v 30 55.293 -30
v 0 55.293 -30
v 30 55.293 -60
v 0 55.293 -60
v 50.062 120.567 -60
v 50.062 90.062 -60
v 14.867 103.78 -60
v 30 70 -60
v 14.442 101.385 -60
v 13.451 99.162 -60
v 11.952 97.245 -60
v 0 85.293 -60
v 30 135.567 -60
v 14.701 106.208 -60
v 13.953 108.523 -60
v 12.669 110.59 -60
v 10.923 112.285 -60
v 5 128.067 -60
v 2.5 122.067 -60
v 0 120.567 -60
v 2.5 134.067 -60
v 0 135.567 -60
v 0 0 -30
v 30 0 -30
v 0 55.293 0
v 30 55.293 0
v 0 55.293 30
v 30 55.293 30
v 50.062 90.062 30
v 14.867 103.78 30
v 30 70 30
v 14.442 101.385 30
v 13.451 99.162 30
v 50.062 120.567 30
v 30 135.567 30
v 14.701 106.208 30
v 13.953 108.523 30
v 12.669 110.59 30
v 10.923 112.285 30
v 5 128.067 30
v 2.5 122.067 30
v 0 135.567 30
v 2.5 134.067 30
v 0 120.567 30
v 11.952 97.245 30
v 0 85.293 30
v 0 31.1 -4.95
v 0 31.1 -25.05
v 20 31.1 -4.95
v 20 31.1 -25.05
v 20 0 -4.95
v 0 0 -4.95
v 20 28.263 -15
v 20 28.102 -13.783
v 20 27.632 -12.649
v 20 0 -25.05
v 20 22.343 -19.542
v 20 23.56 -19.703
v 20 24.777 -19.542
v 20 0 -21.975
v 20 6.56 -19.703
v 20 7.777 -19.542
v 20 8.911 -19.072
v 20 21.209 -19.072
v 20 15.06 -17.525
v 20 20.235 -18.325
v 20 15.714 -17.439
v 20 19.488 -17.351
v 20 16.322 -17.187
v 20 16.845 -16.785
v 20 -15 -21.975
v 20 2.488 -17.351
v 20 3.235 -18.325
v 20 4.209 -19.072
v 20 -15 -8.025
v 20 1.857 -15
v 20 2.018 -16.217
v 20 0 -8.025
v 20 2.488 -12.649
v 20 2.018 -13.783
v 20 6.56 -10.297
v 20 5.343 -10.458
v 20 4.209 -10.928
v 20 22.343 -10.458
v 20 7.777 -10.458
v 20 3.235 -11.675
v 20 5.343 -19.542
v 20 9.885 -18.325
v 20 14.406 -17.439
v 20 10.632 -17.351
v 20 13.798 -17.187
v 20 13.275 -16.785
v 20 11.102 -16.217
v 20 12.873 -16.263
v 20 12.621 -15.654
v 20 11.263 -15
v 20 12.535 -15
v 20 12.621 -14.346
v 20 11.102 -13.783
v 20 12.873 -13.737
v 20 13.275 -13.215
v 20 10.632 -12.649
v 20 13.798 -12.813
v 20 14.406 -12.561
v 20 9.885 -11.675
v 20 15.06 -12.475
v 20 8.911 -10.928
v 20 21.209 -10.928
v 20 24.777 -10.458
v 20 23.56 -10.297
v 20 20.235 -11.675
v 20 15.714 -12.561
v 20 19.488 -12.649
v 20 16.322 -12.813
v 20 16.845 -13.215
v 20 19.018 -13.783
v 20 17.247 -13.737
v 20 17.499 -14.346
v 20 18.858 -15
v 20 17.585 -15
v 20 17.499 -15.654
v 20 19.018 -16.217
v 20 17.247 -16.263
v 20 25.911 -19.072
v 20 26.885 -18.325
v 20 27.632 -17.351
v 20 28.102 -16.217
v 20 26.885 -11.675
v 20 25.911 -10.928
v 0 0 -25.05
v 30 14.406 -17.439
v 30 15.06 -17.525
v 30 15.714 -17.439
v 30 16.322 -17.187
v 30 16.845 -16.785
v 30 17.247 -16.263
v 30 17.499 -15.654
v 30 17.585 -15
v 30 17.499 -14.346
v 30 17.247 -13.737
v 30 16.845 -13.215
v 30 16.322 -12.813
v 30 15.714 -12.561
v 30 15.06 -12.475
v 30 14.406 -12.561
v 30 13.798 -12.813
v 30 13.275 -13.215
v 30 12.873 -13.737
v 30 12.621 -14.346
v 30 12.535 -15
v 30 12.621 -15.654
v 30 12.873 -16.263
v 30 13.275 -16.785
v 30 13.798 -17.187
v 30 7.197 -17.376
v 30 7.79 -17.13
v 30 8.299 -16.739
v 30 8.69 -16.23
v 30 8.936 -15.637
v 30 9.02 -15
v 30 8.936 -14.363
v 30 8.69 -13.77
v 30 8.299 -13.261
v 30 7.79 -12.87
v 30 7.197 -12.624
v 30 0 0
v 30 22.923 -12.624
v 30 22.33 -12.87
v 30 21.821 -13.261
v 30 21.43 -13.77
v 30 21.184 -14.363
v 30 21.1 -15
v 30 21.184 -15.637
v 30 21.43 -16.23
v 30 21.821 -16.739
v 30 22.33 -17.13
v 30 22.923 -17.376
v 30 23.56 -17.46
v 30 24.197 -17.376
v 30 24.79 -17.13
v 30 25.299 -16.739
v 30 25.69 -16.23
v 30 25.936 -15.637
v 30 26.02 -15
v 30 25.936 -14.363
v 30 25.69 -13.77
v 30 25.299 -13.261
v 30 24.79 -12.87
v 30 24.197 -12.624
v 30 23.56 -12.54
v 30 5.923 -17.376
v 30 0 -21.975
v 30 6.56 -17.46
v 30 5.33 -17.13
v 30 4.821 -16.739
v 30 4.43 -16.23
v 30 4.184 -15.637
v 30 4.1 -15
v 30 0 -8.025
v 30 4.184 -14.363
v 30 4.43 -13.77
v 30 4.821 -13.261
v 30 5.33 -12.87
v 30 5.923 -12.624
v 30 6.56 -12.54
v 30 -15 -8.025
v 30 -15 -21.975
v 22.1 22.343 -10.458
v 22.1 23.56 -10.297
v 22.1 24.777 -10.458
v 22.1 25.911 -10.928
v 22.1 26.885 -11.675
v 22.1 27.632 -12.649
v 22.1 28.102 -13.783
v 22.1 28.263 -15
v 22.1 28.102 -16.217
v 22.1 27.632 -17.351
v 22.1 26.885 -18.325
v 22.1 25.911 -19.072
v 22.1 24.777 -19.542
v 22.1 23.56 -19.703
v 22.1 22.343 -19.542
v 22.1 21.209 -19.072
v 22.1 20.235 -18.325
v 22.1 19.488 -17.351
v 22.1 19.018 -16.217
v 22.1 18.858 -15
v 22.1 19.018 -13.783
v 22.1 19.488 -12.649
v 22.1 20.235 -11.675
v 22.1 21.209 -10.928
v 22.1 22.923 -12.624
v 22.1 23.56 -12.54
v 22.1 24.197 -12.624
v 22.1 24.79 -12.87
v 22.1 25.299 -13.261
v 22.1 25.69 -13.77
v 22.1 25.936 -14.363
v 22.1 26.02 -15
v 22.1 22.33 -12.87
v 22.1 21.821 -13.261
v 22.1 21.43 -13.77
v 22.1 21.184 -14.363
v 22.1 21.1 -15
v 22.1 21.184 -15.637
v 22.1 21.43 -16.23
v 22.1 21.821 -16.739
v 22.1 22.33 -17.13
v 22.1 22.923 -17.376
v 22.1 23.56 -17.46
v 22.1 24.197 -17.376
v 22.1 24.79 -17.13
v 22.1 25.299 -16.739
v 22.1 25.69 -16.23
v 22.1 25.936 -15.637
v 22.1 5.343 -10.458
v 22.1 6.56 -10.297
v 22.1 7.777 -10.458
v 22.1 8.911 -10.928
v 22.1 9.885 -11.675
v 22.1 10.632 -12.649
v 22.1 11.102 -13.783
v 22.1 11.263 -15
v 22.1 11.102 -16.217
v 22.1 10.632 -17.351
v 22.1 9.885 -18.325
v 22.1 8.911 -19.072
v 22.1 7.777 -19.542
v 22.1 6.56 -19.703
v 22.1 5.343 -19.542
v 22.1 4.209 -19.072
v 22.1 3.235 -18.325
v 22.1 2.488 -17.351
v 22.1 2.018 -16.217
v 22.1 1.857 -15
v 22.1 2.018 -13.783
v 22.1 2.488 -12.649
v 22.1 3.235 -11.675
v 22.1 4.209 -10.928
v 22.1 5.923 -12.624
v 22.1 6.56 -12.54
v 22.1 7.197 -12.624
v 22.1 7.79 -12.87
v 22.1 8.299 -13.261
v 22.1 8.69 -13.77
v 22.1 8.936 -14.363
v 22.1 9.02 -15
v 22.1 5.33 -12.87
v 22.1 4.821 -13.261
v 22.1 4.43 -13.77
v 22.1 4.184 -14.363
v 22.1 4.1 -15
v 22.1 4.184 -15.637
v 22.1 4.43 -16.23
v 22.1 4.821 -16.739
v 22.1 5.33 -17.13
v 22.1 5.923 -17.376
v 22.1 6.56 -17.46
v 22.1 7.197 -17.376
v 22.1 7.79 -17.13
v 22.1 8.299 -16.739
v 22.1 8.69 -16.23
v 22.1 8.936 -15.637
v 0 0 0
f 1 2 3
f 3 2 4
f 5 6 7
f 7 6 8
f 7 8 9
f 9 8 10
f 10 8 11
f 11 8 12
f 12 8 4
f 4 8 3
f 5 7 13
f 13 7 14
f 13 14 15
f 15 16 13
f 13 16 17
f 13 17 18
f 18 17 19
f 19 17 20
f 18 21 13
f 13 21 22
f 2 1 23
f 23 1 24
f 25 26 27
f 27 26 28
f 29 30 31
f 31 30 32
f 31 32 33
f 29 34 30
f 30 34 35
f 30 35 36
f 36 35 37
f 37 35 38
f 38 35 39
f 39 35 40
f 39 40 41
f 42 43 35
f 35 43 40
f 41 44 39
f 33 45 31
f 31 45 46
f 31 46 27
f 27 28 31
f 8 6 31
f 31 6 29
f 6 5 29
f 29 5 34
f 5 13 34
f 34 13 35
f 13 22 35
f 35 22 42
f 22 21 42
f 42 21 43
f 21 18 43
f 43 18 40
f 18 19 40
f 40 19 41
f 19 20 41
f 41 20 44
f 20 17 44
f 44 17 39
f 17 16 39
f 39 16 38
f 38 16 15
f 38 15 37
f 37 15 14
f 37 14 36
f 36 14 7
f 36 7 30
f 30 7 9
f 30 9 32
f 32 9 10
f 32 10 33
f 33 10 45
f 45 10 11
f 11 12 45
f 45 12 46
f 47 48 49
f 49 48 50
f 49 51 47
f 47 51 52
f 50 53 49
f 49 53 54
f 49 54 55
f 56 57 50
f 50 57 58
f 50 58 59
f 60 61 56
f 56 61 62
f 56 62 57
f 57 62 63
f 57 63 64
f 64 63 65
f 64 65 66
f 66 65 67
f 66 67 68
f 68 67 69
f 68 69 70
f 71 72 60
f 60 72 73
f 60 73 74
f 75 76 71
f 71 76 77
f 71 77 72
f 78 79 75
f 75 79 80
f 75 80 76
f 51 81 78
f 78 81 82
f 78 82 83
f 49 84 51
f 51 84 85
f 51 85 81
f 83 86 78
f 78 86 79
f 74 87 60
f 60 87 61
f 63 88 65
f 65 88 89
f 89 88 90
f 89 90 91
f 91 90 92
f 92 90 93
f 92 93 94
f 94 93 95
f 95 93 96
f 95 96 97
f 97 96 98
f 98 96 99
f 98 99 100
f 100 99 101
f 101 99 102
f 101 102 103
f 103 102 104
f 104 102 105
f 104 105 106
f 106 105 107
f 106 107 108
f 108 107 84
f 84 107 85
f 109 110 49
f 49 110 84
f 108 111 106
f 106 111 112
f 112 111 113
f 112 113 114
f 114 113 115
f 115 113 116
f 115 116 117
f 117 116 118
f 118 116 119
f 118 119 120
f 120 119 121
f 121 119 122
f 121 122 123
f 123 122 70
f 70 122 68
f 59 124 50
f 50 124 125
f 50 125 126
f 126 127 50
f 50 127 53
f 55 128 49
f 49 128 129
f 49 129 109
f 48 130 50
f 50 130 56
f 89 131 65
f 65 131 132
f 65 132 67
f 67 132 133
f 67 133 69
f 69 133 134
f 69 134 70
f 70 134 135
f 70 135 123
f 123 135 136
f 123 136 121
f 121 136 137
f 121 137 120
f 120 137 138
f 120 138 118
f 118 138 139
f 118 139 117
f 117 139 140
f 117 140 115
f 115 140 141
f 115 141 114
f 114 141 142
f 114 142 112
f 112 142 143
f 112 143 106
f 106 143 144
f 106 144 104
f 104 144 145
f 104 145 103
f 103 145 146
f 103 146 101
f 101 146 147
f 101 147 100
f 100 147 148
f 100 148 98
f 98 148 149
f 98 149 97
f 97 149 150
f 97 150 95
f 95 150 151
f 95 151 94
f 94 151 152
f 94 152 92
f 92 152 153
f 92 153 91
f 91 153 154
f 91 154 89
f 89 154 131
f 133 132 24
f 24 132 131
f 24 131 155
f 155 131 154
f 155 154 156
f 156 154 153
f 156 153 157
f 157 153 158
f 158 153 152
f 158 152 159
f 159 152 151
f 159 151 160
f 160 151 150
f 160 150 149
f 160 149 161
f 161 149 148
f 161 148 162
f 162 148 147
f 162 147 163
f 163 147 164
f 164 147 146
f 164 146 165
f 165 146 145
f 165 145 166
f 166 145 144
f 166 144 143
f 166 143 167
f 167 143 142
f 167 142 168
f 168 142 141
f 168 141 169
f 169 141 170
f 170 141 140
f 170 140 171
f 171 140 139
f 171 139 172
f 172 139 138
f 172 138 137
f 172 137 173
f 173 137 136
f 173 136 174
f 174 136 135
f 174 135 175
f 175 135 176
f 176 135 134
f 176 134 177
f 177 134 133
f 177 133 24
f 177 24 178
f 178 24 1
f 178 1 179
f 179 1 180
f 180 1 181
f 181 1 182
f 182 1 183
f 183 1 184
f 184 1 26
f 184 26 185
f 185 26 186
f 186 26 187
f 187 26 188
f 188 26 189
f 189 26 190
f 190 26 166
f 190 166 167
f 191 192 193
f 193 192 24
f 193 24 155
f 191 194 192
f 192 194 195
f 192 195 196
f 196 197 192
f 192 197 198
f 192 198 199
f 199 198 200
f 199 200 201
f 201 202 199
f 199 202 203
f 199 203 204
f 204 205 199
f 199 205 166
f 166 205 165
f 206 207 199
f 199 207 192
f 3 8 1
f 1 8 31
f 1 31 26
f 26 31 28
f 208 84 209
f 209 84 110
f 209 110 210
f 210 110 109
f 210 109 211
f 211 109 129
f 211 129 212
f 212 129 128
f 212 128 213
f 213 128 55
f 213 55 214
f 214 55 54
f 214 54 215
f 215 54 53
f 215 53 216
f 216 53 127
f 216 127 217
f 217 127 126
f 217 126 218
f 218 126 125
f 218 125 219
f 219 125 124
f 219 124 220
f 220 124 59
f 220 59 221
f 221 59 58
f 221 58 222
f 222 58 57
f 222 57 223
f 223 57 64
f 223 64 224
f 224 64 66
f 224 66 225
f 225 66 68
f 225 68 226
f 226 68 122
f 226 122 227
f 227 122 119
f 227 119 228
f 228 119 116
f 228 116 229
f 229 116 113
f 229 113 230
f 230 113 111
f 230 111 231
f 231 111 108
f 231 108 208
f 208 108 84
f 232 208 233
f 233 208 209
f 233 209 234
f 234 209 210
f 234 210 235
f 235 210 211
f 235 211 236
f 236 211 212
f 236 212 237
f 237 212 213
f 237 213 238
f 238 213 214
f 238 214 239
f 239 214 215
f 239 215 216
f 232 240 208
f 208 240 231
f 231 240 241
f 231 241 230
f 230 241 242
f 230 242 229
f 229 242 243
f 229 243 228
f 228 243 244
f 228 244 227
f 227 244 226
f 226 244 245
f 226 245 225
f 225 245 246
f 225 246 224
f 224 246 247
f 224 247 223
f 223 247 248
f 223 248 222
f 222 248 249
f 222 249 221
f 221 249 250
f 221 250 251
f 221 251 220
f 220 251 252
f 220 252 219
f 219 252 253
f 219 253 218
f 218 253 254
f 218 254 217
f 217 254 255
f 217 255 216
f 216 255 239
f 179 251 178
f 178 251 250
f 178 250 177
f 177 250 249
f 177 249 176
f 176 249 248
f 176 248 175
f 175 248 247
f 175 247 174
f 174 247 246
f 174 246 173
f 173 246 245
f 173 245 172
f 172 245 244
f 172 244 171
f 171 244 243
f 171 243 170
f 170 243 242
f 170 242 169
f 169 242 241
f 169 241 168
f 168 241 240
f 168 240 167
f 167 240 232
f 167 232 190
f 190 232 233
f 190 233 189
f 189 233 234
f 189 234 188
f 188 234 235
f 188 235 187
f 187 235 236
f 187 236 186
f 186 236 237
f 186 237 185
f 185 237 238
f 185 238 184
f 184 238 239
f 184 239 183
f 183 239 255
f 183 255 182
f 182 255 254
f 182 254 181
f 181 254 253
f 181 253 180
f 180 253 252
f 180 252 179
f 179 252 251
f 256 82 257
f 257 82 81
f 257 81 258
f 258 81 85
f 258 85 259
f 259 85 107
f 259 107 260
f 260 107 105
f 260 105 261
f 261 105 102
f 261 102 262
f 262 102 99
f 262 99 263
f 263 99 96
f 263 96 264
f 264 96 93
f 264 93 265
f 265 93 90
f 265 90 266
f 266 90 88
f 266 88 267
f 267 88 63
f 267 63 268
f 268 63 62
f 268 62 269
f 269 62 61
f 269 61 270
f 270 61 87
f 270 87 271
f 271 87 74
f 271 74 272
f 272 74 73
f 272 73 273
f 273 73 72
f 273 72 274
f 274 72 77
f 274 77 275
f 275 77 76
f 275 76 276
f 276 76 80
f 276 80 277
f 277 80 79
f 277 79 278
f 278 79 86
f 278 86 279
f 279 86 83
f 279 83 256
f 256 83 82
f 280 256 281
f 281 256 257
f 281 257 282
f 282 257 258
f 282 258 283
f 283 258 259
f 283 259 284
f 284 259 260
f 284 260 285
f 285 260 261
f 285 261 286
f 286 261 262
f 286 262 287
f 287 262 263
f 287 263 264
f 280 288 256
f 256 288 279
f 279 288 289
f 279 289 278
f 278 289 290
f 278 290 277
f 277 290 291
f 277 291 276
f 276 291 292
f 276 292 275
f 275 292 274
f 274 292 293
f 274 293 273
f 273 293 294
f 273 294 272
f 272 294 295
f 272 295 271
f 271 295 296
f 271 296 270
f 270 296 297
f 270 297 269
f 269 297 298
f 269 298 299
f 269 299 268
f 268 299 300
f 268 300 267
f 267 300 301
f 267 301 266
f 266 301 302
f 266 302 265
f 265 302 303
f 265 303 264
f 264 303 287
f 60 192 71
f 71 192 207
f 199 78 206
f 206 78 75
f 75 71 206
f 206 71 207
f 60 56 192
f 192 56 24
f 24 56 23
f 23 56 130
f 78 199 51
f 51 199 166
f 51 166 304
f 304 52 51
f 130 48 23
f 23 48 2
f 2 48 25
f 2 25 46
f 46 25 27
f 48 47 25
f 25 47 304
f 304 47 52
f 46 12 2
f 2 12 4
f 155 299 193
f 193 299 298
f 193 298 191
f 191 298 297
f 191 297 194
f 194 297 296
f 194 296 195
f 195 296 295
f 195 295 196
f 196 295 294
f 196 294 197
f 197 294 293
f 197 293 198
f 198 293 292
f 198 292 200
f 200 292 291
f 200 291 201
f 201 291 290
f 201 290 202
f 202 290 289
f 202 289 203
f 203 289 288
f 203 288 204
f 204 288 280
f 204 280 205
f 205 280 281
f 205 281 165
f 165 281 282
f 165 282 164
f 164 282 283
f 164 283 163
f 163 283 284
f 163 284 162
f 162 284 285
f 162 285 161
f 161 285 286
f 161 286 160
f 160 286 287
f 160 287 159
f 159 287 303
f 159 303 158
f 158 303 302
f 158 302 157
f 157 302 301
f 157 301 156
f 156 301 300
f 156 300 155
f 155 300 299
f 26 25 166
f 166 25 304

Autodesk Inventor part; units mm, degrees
ref_plane "YZ Plane" through (0, 0, 0) normal (1, 0, 0) x (0, 1, 0)
ref_plane "XZ Plane" through (0, 0, 0) normal (0, 1, 0) x (-1, 0, 0)
sketch "Sketch1" plane through (0, 0, 0) normal (0, 0, 1) x (1, 0, 0)
  line L0 (0, 0) -> (25, 0)
  line L1 (25, 0) -> (25, 40)
  line L2 (25, 40) -> (0, 40)
  line L3 (0, 40) -> (0, 0)
  dimension "d1" = 25
  dimension "d2" = 40
  dimension "d3" = 25
extrude "Extrusion1" add sketch "Sketch1" against normal blind 30
sketch "Sketch2" plane through (25, 0, 0) normal (1, 0, 0) x (0, 0, -1)
  line L0 (0, 0) -> (30, 0) projected
  circle A0 centre (15, 6.56) radius 2.46
extrude "Extrusion2" cut sketch "Sketch2" against normal blind 30
sketch "Sketch3" plane through (0, 0, 0) normal (-1, 0, 0) x (0, 0, 1)
  line L0 (0, 0) -> (-30, 0) projected
  line L1 (-25.05, 0) -> (-4.95, 0)
  line L2 (-4.95, 0) -> (-4.95, 33.12)
  line L3 (-4.95, 33.12) -> (-25.05, 33.12)
  line L4 (-25.05, 33.12) -> (-25.05, 0)
  dimension "d11" = 20.1
extrude "Extrusion3" cut sketch "Sketch3" against normal blind 20
sketch "Sketch4" plane through (0, 0, 0) normal (0, -1, 0) x (1, 0, 0)
  line L0 (20, -4.95) -> (20, -25.05) projected
  line L1 (20, -15) -> (25, -15)
  line L2 (25, 0) -> (25, -30) projected
  line L3 (20, -8.025) -> (25, -8.025)
  line L4 (25, -8.025) -> (25, -21.975)
  line L5 (25, -21.975) -> (20, -21.975)
  line L6 (20, -21.975) -> (20, -8.025)
  line L7 (20, -8.025) -> (25, -21.975) construction
  line L8 (25, -8.025) -> (20, -21.975) construction
  line L9 (25, -12.54) -> (25, -17.46) projected
  point P0 (0, 0)
  point P1 (22.5, -15)
  dimension "d14" = 13.95
extrude "Extrusion4" add sketch "Sketch4" along normal blind 15
sketch "Sketch5" plane through (20, 0, 0) normal (-1, 0, 0) x (0, 0, 1)
  circle A0 centre (-15, 6.56) radius 2.46 projected
  circle A1 centre (-15, 6.56) radius 4.7025
  circle A2 centre (-15, 6.56) radius 2.46 projected
  circle A3 centre (-15, 6.56) radius 2.46
  point P0 (0, 0)
  dimension "d17" = 9.405
extrude "Extrusion5" cut sketch "Sketch5" against normal blind 2.1
sketch "Sketch6" plane through (25, 0, 0) normal (1, 0, 0) x (0, 0, -1)
  circle A0 centre (15, 6.56) radius 4.7025 projected
  line L0 (15, 6.56) -> (15, 23.56)
  circle A1 centre (15, 23.56) radius 2.46
  point P0 (0, 0)
  dimension "d20" = 17
  dimension "d21" = 4.92
extrude "Extrusion6" cut sketch "Sketch6" against normal blind 10 contours A1
sketch "Sketch7" plane through (20, 0, 0) normal (-1, 0, 0) x (0, 0, 1)
  circle A0 centre (-15, 23.56) radius 2.46 projected
  circle A1 centre (-15, 23.56) radius 4.7025
  point P0 (0, 0)
  dimension "d24" = 9.405
extrude "Extrusion7" cut sketch "Sketch7" against normal blind 2.1
sketch "Sketch9" plane through (25, 0, 0) normal (1, 0, 0) x (0, 0, -1)
  circle A0 centre (15, 6.56) radius 2.46 projected
  circle A1 centre (15, 6.56) radius 2.46
  circle A2 centre (15, 23.56) radius 2.46 projected
  circle A3 centre (15, 23.56) radius 2.46
  line L0 (30, 40) -> (30, 0) projected
  line L1 (30, 0) -> (30, 40)
  line L2 (30, 40) -> (0, 40)
  line L3 (0, 40) -> (0, 0)
  line L4 (0, 0) -> (8.025, 0) projected
  line L5 (21.975, 0) -> (21.975, -15)
  line L6 (21.975, -15) -> (8.025, -15)
  line L7 (8.025, -15) -> (8.025, 0)
  line L8 (0, 0) -> (8.025, 0)
  line L9 (21.975, 0) -> (30, 0)
extrude "Extrusion8" add sketch "Sketch9" along normal blind 5
sketch "Sketch10" plane through (0, 40, 0) normal (0, 1, 0) x (1, 0, 0)
  line L0 (0, 30) -> (30, 30) projected
  line L1 (30, 0) -> (0, 0) projected
  line L2 (0, 30) -> (30, 30)
  line L3 (30, 30) -> (30, 0)
  line L4 (30, 0) -> (0, 0)
  line L5 (0, 0) -> (0, 30)
extrude "Extrusion9" add sketch "Sketch10" along normal blind 30
sketch "Sketch12" plane through (30, 0, 0) normal (1, 0, 0) x (0, 0, -1)
  circle A0 centre (15, 6.56) radius 2.46 projected
  line L0 (15, 6.56) -> (15, 15.06)
  circle A1 centre (15, 15.06) radius 2.525
  point P0 (0, 0)
  dimension "d31" = 8.5
  dimension "d33" = 5.05
extrude "Extrusion10" cut sketch "Sketch12" against normal blind 30 contours A1
sketch "Sketch15" plane through (0, 0, -25.05) normal (-1, 0, 0) x (0, 0, 1)
  line L0 (0, 33.12) -> (20.1, 33.12) projected
  line L1 (20.1, 33.12) -> (20.1, 0) projected
  line L2 (0, 33.12) -> (20.1, 33.12)
  line L3 (20.1, 33.12) -> (20.1, 31.1)
  line L4 (20.1, 31.1) -> (0, 31.1)
  line L5 (0, 31.1) -> (0, 33.12)
  point P0 (25.05, 0)
  dimension "d57" = 2.02
extrude "Extrusion13" add sketch "Sketch15" against normal blind 20
sketch "Sketch17" plane through (0, 0, 0) normal (0, 0, 1) x (1, 0, 0)
  line L0 (0, 70) -> (30, 70) projected
  line L1 (30, 70) -> (50.0622, 90.0622)
  line L2 (30, 70) -> (80, 70) construction
  line L3 (11.9522, 97.2454) -> (0, 85.2932)
  line L4 (0, 70) -> (0, 85.2932)
  line L5 (0, 70) -> (0, 0) projected
  line L6 (0, 70) -> (30, 70)
  line L7 (10.923, 112.2849) -> (0, 120.567)
  line L8 (2.5, 134.067) -> (0, 135.567)
  line L9 (2.5, 134.067) -> (5, 128.067)
  line L10 (2.5, 122.067) -> (0, 120.567)
  line L11 (2.5, 122.067) -> (5, 128.067)
  line L12 (50.0622, 105.3553) -> (50.0622, 120.567)
  line L13 (50.0622, 105.3553) -> (50.0622, 90.0622)
  line L14 (0, 135.567) -> (30, 135.567)
  line L15 (30, 135.567) -> (50.0622, 120.567)
  arc A0 (11.9522, 97.2454) -> (10.923, 112.2849) centre (4.8811, 104.3165) ccw
  dimension "d61" = 45
  dimension "d62" = 32.0271
  dimension "d71" = 30
  dimension "d72" = 10
extrude "Extrusion14" add sketch "Sketch17" against normal blind 30
sketch "Sketch19" plane through (0, 0, 0) normal (0, 0, 1) x (1, 0, 0)
  line L0 (30, 0) -> (30, 70) projected
  line L1 (30, 70) -> (50.0622, 90.0622) projected
  line L2 (30, 70) -> (50.0622, 90.0622)
  line L3 (50.0622, 120.567) -> (50.0622, 90.0622) projected
  line L4 (50.0622, 90.0622) -> (50.0622, 120.567)
  line L5 (30, 135.567) -> (50.0622, 120.567) projected
  line L6 (50.0622, 120.567) -> (30, 135.567)
  line L7 (0, 135.567) -> (30, 135.567) projected
  line L8 (30, 135.567) -> (0, 135.567)
  line L9 (5, 128.067) -> (2.5, 134.067) projected
  line L10 (0, 135.567) -> (2.5, 134.067)
  line L11 (2.5, 134.067) -> (5, 128.067)
  line L12 (2.5, 122.067) -> (5, 128.067) projected
  line L13 (5, 128.067) -> (2.5, 122.067)
  line L14 (0, 120.567) -> (2.5, 122.067) projected
  line L15 (2.5, 122.067) -> (0, 120.567)
  line L16 (10.923, 112.2849) -> (0, 120.567) projected
  line L17 (0, 120.567) -> (10.923, 112.2849)
  line L18 (11.9522, 97.2454) -> (0, 85.2932) projected
  line L19 (11.9522, 97.2454) -> (0, 85.2932)
  line L20 (0, 85.2932) -> (0, 55.2932)
  line L21 (0, 0) -> (0, 85.2932) projected
  line L22 (0, 55.2932) -> (30, 55.2932)
  line L23 (30, 55.2932) -> (30, 70)
  arc A0 (11.9522, 97.2454) -> (10.923, 112.2849) centre (4.8811, 104.3165) ccw
  dimension "d75" = 30
  dimension "d76" = 30
extrude "Extrusion15" add sketch "Sketch19" along normal blind 30
ref_plane "Work Plane1" through (0, 0, -15) normal (0, 0, 1) x (1, 0, 0)
mirror "Mirror1" about plane through (0, 0, -15) normal (0, 0, 1) of "Extrusion15"
properties part number "rec_c_12mm_x_90mm"
